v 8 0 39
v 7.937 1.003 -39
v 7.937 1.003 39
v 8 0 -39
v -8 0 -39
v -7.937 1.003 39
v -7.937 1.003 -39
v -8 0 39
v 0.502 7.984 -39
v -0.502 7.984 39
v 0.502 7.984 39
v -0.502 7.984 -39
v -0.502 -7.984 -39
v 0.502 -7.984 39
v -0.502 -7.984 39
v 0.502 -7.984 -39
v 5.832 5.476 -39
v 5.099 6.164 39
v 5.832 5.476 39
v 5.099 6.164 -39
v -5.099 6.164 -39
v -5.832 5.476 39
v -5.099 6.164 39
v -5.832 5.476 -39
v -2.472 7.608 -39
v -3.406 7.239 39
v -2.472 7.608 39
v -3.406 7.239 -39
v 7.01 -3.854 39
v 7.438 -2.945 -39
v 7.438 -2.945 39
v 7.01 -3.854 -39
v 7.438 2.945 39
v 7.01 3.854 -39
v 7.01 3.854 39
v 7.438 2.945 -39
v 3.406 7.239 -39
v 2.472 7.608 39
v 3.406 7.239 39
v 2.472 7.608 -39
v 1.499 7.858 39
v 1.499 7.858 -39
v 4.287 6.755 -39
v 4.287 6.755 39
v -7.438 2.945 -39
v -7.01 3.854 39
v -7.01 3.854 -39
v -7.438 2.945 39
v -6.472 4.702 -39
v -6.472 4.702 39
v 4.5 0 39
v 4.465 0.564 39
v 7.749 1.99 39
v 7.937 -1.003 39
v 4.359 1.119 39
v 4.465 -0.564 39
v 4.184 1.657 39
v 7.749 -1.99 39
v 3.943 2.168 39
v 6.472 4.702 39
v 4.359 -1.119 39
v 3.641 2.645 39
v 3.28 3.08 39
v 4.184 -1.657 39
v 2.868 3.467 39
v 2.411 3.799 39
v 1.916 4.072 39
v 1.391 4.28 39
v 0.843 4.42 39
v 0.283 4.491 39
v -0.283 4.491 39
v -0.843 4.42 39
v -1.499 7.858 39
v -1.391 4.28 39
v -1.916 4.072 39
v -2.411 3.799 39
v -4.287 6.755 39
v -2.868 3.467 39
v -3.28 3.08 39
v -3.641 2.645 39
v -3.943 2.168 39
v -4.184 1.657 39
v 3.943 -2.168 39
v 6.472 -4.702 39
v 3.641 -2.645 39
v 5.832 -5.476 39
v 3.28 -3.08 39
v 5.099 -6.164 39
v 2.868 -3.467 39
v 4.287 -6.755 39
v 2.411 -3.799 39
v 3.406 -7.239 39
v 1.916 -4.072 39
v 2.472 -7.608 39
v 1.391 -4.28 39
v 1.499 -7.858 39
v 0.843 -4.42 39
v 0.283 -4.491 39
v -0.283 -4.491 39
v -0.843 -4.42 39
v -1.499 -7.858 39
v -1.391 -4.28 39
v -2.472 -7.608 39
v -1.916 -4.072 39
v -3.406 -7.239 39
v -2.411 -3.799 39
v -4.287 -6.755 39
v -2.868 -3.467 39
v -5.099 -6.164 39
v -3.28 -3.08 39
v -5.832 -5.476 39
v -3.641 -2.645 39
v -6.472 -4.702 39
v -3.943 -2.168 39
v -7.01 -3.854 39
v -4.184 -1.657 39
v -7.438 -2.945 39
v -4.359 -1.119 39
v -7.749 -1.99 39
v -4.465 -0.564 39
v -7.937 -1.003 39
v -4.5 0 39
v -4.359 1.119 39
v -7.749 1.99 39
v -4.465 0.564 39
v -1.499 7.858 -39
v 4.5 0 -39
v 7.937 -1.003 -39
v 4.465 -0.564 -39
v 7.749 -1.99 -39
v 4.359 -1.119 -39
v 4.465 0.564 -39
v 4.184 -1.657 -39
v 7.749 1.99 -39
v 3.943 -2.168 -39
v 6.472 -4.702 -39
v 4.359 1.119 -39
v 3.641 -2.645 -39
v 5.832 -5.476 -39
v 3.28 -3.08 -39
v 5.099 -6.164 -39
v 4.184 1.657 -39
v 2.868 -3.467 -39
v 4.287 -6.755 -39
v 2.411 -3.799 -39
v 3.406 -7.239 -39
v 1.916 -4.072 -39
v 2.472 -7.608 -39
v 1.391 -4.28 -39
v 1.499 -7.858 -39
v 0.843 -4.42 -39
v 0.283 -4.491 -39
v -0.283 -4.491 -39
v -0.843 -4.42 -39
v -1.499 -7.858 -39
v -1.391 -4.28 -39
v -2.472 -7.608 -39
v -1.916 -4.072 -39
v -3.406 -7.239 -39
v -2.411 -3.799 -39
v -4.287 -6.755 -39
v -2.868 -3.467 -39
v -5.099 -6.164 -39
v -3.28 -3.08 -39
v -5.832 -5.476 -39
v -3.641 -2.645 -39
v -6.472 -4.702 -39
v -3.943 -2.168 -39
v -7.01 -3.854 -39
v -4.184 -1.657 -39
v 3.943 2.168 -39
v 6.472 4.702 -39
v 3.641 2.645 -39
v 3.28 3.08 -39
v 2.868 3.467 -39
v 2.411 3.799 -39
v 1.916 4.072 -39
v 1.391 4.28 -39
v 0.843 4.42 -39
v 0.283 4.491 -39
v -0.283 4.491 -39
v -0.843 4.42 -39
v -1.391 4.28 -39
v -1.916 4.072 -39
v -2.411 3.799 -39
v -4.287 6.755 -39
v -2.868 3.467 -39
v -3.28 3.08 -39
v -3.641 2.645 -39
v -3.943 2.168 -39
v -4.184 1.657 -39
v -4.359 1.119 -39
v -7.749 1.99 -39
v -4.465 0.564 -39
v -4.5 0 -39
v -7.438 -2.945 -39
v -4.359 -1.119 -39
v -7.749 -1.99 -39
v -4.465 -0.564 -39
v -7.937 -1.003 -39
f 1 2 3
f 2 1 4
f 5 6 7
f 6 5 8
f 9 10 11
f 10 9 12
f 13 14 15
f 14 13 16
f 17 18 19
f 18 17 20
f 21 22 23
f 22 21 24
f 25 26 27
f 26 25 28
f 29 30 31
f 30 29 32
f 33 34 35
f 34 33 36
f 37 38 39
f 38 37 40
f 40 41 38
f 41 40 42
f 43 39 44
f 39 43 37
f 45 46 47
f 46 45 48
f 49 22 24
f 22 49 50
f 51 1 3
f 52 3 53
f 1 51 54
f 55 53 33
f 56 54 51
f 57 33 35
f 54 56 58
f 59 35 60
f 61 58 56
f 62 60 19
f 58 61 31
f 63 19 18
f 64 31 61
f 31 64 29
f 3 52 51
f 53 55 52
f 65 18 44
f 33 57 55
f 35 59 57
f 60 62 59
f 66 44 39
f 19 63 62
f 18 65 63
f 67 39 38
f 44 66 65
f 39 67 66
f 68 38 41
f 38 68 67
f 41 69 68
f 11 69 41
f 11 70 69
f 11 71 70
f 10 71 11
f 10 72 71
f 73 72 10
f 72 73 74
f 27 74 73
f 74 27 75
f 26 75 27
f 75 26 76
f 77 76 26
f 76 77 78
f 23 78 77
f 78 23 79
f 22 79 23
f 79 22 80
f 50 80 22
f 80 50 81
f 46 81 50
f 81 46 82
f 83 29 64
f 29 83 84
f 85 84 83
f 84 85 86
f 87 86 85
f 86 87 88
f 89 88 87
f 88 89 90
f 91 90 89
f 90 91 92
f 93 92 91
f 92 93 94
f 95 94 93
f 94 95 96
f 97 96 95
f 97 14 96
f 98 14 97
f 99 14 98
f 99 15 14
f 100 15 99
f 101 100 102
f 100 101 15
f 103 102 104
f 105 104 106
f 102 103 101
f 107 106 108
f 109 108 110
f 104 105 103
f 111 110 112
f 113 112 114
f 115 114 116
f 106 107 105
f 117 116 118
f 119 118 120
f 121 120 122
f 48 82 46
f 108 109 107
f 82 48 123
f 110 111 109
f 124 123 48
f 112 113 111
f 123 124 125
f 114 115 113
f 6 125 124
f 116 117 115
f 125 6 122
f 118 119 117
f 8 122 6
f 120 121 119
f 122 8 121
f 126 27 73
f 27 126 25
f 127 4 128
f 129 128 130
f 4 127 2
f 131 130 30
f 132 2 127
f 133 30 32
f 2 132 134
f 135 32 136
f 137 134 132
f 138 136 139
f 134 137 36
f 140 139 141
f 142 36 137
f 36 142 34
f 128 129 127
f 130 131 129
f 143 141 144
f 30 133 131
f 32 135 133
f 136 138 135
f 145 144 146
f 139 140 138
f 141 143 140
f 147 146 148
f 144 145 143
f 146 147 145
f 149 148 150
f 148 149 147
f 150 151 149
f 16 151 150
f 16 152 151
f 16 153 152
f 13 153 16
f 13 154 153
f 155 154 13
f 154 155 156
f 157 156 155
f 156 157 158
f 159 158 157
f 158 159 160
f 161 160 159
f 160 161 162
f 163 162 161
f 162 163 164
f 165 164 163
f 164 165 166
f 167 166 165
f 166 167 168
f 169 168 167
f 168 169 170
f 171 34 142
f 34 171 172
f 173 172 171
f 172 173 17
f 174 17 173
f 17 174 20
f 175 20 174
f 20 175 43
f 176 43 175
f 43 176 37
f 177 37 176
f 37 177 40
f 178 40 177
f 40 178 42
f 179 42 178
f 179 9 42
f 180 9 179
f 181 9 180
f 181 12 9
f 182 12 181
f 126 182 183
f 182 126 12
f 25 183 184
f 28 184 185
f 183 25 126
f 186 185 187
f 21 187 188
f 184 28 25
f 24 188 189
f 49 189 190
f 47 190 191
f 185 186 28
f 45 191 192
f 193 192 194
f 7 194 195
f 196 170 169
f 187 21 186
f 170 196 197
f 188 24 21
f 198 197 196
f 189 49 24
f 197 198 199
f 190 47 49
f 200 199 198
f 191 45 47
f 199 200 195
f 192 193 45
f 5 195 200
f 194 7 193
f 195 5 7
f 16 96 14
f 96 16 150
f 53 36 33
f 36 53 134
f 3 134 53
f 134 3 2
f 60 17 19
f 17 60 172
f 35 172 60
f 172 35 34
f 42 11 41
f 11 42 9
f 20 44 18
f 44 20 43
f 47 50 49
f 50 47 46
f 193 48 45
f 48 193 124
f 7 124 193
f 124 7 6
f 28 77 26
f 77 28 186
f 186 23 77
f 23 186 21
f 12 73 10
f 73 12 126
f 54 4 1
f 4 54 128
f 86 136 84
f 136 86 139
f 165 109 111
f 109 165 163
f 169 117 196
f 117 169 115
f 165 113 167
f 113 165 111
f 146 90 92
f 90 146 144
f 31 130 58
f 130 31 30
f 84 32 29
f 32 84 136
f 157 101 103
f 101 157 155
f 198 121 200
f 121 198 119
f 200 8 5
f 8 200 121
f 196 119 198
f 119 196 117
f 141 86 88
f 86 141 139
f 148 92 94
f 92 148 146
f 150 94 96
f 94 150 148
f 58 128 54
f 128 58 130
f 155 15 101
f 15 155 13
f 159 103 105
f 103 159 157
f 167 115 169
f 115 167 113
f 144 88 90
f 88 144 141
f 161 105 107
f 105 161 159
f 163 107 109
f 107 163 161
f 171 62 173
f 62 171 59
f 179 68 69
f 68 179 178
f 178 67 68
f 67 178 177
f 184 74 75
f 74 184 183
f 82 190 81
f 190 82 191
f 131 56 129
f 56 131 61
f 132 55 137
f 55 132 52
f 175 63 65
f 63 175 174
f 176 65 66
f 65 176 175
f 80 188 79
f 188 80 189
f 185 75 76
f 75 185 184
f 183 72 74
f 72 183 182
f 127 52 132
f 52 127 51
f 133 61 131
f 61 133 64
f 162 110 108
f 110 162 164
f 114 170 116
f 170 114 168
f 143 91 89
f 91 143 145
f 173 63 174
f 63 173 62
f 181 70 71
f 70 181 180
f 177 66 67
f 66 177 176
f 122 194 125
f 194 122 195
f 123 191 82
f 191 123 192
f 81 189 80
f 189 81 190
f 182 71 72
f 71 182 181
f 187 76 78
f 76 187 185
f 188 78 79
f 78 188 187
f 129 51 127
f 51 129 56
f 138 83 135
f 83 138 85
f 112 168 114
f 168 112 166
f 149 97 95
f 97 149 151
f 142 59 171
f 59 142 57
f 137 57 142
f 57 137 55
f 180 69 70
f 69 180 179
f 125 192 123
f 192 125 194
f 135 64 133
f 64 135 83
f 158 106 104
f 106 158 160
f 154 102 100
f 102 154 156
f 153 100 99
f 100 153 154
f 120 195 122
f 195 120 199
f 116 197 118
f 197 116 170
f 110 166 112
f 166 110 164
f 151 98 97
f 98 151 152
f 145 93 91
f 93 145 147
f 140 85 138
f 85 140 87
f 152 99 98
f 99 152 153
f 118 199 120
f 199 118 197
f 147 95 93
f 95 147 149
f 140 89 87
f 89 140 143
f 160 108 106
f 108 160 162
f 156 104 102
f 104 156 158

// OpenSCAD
$fn = 50;


difference() {
	union() {
		translate(v = [0, 0, -39.0000000000]) {
			cylinder(h = 78, r = 8.0000000000);
		}
	}
	union() {
		translate(v = [0, 0, -100.0000000000]) {
			cylinder(h = 200, r = 4.5000000000);
		}
	}
}
